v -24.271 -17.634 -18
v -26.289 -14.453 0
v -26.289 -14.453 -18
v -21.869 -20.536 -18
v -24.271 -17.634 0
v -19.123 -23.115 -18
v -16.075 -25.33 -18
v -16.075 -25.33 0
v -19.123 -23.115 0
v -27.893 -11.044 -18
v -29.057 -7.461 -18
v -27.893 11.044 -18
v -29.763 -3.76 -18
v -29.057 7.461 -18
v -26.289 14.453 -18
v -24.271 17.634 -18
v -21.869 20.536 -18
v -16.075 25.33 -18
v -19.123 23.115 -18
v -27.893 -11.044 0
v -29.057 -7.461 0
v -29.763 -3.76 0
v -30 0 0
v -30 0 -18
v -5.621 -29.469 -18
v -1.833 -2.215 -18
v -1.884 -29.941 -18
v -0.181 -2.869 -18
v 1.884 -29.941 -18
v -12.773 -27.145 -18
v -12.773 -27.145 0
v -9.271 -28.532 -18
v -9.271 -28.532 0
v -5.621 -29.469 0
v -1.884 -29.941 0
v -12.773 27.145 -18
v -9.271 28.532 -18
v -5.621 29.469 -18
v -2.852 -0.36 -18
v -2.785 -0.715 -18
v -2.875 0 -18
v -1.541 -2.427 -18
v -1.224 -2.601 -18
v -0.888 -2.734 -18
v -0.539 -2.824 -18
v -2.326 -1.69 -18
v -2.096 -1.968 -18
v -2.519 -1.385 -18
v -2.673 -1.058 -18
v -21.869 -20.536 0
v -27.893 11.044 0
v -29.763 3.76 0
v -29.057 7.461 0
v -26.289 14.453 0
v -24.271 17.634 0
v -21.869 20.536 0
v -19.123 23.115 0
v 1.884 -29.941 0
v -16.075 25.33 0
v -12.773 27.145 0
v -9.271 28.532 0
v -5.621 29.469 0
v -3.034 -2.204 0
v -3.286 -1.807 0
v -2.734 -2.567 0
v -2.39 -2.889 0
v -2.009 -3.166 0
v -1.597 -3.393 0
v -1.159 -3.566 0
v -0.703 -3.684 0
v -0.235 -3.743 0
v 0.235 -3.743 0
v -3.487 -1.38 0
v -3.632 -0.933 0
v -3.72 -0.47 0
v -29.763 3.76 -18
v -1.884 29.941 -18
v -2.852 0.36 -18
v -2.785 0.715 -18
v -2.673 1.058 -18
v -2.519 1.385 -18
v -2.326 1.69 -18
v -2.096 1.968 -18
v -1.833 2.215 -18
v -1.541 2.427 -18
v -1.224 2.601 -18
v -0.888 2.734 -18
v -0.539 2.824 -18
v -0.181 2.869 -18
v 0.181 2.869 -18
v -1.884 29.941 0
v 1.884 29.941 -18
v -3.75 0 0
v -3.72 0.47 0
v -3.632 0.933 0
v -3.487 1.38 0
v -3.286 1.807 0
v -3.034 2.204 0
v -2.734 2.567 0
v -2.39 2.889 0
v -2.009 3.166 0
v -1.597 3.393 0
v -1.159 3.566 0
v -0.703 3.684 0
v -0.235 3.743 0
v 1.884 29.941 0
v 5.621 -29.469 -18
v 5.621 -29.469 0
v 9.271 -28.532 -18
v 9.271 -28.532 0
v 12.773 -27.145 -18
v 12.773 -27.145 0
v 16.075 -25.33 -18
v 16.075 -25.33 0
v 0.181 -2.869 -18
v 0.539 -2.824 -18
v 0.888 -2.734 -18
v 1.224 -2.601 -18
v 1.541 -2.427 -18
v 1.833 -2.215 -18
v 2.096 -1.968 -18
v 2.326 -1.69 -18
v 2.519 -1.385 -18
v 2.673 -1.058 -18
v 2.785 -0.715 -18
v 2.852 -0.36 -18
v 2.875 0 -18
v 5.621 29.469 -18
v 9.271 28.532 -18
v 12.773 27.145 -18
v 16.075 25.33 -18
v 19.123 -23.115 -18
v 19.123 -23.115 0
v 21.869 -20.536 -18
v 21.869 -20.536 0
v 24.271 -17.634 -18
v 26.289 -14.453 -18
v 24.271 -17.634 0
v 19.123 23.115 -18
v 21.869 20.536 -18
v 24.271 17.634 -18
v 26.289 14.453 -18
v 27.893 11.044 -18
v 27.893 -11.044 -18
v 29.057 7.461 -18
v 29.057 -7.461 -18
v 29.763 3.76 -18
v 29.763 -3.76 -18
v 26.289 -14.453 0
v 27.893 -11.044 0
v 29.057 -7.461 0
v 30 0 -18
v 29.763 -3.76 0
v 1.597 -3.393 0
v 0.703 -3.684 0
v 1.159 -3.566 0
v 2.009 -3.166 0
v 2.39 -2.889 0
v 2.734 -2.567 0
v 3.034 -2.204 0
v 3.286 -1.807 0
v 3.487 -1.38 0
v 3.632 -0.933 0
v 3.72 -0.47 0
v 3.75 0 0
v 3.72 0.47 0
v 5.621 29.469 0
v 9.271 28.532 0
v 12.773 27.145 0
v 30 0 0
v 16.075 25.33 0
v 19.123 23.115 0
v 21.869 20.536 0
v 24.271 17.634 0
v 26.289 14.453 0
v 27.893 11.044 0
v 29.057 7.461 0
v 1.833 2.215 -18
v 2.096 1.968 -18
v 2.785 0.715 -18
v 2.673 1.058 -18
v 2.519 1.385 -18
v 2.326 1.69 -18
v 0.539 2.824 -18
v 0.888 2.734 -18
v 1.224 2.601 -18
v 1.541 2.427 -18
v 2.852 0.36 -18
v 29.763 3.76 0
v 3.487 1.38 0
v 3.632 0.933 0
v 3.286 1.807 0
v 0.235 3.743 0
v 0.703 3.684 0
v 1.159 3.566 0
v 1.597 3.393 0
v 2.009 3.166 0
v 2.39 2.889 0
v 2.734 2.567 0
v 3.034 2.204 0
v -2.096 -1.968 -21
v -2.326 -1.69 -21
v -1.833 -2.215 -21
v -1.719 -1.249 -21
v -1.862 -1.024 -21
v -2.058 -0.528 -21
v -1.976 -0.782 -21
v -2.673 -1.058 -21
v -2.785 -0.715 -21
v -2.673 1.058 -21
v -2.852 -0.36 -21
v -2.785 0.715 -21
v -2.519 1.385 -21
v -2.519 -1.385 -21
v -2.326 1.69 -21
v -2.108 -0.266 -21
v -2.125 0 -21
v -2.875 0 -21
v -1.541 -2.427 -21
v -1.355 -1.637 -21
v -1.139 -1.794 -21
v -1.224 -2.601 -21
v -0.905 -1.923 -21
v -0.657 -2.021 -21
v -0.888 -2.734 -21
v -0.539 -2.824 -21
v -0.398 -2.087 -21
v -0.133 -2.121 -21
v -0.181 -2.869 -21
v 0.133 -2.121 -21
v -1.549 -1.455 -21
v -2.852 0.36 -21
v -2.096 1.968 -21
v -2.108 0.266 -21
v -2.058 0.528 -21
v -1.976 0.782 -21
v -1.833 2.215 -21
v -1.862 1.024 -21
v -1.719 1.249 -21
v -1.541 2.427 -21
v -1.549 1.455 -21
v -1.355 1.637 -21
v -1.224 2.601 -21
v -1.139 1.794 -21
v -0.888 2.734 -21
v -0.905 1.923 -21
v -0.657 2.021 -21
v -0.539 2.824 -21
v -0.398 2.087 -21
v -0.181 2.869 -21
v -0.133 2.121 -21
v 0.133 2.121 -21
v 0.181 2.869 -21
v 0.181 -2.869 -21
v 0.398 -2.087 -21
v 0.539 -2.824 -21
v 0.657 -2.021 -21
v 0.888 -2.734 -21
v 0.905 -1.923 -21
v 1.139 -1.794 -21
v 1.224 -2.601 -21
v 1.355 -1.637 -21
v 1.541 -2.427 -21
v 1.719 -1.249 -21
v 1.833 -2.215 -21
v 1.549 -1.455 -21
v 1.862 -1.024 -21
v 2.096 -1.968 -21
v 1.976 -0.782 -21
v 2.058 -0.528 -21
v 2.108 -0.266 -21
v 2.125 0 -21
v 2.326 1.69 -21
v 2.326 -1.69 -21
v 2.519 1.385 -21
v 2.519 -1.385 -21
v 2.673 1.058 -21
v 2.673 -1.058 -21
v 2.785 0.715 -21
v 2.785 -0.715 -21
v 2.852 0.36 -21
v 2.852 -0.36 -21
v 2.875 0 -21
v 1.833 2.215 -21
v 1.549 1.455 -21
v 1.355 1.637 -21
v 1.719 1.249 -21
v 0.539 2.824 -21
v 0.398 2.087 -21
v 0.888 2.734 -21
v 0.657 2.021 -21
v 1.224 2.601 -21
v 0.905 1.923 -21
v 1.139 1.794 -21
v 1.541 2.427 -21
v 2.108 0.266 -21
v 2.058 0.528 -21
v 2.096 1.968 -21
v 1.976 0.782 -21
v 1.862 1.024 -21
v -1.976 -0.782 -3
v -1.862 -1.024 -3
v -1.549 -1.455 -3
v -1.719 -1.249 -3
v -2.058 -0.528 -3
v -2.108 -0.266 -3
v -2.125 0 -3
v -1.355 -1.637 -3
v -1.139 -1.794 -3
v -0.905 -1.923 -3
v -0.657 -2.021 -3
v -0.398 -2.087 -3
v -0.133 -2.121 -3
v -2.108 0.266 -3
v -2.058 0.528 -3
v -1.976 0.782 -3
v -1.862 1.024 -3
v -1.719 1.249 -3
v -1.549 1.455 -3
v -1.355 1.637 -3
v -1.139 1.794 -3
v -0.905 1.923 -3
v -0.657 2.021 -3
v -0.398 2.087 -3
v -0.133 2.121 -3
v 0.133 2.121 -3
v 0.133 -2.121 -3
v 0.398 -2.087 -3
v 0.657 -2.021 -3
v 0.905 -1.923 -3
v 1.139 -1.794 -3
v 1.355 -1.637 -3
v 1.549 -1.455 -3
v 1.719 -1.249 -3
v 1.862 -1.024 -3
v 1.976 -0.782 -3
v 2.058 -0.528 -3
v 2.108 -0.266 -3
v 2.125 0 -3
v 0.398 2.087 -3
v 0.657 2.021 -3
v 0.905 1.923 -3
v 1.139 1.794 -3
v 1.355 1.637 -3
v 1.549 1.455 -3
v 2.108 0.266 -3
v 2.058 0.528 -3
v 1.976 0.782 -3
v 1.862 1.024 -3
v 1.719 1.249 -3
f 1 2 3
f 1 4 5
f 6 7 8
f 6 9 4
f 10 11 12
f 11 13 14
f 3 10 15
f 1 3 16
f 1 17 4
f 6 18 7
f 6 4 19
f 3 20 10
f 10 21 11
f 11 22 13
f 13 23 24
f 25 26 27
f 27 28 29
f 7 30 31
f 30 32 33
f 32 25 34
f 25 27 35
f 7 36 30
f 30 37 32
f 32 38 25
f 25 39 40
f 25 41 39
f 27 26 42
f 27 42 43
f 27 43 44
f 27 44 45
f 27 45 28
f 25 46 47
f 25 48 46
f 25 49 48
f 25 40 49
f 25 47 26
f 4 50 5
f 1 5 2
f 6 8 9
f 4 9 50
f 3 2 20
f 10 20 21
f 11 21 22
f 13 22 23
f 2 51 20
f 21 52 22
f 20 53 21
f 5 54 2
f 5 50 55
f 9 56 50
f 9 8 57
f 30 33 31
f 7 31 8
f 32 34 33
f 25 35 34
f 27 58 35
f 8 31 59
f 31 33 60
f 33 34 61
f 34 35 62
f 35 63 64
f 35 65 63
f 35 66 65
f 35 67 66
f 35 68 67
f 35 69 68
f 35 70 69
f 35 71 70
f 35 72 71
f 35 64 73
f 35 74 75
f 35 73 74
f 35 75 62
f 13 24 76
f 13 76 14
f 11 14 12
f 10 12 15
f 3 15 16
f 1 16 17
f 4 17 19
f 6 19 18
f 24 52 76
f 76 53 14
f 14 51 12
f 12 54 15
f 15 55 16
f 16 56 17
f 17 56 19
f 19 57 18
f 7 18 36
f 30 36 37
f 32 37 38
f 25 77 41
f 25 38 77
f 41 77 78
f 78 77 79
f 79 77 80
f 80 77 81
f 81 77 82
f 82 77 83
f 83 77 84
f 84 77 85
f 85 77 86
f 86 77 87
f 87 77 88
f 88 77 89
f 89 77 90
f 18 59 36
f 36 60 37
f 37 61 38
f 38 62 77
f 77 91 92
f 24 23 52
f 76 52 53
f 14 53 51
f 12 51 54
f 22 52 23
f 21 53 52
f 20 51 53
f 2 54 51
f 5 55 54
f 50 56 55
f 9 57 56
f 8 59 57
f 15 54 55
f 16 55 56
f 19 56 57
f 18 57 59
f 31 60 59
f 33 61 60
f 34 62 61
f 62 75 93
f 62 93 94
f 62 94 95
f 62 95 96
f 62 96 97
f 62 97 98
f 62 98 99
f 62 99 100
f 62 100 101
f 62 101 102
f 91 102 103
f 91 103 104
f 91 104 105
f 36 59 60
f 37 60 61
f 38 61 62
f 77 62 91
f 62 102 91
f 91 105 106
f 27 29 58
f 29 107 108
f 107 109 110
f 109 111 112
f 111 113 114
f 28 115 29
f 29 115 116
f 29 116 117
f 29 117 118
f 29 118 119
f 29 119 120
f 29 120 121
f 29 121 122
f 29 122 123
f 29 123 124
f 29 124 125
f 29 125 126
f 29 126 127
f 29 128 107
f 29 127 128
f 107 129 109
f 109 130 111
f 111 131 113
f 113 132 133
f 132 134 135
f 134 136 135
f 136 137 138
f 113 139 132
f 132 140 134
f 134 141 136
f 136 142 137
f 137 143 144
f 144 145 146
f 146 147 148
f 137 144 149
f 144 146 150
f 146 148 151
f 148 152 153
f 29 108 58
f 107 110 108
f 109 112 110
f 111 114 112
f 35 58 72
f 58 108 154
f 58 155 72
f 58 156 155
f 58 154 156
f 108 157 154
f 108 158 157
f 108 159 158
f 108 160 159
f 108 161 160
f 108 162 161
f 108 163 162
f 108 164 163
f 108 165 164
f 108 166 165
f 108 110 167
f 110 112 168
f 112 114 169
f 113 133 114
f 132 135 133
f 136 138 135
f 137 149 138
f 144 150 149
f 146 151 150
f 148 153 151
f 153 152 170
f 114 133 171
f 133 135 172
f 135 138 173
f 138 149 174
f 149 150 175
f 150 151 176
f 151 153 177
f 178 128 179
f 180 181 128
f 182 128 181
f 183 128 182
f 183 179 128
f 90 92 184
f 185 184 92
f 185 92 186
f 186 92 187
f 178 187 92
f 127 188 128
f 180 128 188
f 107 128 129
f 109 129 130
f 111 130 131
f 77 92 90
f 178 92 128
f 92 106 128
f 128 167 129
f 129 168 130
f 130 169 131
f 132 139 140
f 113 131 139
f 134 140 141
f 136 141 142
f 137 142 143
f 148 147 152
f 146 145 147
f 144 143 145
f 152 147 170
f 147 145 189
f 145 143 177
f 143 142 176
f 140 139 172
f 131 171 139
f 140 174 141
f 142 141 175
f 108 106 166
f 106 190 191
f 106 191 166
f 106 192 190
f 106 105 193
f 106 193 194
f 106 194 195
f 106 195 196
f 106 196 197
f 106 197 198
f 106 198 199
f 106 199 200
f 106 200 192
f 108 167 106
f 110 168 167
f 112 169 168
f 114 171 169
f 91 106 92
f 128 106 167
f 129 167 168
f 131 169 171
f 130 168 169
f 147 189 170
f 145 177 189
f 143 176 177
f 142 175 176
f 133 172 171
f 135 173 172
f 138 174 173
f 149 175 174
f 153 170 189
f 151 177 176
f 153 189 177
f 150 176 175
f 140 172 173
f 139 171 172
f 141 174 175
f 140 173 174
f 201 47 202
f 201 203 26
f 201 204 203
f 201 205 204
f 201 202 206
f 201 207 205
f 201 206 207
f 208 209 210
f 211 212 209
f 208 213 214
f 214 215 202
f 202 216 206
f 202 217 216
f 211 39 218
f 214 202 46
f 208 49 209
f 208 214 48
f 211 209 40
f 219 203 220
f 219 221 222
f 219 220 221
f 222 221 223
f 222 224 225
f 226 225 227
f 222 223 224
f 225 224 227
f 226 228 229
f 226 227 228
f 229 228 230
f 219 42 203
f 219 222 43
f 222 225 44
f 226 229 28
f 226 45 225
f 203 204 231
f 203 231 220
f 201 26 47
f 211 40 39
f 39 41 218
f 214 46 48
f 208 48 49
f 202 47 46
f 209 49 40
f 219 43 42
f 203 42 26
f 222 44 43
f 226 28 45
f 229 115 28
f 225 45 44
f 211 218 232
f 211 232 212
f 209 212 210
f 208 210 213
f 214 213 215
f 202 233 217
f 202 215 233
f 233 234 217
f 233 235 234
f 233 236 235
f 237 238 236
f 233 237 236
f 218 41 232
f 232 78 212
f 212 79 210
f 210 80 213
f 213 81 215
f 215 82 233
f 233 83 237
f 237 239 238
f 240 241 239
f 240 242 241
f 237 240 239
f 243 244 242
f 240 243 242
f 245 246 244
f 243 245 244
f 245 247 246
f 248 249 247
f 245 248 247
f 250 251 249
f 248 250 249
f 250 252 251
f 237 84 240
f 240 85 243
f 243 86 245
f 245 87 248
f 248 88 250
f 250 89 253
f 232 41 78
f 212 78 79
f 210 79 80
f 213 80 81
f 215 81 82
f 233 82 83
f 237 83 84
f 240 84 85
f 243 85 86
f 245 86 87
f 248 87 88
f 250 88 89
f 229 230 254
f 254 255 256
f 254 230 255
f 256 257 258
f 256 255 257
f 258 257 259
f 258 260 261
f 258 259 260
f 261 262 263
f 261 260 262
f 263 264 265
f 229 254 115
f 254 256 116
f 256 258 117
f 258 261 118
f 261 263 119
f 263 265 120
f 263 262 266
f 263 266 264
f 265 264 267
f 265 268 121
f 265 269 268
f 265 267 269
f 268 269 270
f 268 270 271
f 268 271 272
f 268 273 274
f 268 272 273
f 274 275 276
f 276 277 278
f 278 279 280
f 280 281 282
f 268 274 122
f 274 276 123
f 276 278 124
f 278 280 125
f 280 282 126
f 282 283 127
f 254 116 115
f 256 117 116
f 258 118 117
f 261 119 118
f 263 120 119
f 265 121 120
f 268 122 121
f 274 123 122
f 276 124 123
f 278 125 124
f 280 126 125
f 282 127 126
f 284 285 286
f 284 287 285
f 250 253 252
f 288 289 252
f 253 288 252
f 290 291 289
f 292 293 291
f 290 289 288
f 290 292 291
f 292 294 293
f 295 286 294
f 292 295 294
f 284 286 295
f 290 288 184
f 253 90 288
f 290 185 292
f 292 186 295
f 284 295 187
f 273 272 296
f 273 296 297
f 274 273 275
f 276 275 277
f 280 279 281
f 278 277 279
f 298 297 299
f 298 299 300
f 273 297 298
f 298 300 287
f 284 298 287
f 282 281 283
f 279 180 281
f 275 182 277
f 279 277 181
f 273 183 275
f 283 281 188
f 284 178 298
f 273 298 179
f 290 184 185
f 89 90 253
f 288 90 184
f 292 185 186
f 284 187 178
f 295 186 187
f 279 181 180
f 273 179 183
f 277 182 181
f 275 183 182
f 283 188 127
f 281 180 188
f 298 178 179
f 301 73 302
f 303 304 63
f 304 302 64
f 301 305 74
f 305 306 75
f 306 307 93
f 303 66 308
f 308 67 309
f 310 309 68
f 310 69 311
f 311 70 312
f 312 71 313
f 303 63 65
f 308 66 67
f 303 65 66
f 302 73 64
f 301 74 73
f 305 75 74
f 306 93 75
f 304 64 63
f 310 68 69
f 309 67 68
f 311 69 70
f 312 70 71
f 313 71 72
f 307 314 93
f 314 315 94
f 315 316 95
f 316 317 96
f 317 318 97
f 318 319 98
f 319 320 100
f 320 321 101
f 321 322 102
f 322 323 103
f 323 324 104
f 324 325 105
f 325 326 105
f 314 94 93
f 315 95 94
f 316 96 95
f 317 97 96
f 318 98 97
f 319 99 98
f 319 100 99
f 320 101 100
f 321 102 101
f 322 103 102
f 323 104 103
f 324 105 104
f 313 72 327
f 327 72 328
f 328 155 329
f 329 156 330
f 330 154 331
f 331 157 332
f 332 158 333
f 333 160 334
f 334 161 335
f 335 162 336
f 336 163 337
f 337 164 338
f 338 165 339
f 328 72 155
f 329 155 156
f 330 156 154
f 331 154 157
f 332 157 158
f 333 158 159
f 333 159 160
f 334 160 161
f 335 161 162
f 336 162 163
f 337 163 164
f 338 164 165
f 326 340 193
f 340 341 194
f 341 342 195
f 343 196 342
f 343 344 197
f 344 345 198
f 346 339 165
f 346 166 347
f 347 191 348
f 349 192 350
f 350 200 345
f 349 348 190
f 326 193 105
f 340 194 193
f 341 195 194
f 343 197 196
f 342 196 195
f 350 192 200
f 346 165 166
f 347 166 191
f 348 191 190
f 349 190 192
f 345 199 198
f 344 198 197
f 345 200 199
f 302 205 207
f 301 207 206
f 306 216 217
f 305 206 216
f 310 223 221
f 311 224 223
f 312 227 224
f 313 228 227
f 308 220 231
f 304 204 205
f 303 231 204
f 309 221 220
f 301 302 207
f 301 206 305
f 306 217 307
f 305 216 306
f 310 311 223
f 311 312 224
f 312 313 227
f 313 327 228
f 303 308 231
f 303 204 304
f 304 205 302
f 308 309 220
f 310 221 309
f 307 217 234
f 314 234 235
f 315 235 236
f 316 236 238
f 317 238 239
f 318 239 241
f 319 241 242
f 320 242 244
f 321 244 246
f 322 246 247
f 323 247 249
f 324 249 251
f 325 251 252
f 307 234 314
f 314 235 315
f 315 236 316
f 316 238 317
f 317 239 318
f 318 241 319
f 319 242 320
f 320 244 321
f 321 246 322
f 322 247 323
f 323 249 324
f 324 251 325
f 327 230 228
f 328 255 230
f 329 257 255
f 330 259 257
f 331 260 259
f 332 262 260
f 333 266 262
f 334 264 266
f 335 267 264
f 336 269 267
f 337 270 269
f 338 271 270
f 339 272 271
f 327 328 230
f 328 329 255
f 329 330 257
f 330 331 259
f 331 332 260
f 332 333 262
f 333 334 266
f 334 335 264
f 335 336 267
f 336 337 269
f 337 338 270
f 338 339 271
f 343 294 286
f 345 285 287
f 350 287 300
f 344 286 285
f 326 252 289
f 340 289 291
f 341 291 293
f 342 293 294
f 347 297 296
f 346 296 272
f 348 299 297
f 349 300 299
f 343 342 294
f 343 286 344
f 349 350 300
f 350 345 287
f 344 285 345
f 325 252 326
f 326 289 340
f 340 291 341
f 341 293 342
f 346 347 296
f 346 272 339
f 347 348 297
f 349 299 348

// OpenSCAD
$fn = 50;

difference() {
	union() {
		translate(v = [0, 0, -18.0]) {
			cylinder(h = 18, r = 30.0);
		}
		#translate(v = [0, 0, -21.0]) {
			cylinder(h = 21, r = 2.875);
		}
	}
	union() {
		translate(v = [0, 0, 0]) {
			rotate(a = [0, 0, 0]) {
				difference() {
					union() {
						translate(v = [0, 0, -21.0]) {
							cylinder(h = 21, r = 2.0);
						}
						translate(v = [0, 0, -3]) {
							cylinder(h = 3, r1 = 2.125, r2 = 3.75);
						}
						translate(v = [0, 0, -21.0]) {
							cylinder(h = 21, r = 2.125);
						}
						translate(v = [0, 0, -21.0]) {
							cylinder(h = 21, r = 2.0);
						}
					}
					union();
				}
			}
		}
	}
}
